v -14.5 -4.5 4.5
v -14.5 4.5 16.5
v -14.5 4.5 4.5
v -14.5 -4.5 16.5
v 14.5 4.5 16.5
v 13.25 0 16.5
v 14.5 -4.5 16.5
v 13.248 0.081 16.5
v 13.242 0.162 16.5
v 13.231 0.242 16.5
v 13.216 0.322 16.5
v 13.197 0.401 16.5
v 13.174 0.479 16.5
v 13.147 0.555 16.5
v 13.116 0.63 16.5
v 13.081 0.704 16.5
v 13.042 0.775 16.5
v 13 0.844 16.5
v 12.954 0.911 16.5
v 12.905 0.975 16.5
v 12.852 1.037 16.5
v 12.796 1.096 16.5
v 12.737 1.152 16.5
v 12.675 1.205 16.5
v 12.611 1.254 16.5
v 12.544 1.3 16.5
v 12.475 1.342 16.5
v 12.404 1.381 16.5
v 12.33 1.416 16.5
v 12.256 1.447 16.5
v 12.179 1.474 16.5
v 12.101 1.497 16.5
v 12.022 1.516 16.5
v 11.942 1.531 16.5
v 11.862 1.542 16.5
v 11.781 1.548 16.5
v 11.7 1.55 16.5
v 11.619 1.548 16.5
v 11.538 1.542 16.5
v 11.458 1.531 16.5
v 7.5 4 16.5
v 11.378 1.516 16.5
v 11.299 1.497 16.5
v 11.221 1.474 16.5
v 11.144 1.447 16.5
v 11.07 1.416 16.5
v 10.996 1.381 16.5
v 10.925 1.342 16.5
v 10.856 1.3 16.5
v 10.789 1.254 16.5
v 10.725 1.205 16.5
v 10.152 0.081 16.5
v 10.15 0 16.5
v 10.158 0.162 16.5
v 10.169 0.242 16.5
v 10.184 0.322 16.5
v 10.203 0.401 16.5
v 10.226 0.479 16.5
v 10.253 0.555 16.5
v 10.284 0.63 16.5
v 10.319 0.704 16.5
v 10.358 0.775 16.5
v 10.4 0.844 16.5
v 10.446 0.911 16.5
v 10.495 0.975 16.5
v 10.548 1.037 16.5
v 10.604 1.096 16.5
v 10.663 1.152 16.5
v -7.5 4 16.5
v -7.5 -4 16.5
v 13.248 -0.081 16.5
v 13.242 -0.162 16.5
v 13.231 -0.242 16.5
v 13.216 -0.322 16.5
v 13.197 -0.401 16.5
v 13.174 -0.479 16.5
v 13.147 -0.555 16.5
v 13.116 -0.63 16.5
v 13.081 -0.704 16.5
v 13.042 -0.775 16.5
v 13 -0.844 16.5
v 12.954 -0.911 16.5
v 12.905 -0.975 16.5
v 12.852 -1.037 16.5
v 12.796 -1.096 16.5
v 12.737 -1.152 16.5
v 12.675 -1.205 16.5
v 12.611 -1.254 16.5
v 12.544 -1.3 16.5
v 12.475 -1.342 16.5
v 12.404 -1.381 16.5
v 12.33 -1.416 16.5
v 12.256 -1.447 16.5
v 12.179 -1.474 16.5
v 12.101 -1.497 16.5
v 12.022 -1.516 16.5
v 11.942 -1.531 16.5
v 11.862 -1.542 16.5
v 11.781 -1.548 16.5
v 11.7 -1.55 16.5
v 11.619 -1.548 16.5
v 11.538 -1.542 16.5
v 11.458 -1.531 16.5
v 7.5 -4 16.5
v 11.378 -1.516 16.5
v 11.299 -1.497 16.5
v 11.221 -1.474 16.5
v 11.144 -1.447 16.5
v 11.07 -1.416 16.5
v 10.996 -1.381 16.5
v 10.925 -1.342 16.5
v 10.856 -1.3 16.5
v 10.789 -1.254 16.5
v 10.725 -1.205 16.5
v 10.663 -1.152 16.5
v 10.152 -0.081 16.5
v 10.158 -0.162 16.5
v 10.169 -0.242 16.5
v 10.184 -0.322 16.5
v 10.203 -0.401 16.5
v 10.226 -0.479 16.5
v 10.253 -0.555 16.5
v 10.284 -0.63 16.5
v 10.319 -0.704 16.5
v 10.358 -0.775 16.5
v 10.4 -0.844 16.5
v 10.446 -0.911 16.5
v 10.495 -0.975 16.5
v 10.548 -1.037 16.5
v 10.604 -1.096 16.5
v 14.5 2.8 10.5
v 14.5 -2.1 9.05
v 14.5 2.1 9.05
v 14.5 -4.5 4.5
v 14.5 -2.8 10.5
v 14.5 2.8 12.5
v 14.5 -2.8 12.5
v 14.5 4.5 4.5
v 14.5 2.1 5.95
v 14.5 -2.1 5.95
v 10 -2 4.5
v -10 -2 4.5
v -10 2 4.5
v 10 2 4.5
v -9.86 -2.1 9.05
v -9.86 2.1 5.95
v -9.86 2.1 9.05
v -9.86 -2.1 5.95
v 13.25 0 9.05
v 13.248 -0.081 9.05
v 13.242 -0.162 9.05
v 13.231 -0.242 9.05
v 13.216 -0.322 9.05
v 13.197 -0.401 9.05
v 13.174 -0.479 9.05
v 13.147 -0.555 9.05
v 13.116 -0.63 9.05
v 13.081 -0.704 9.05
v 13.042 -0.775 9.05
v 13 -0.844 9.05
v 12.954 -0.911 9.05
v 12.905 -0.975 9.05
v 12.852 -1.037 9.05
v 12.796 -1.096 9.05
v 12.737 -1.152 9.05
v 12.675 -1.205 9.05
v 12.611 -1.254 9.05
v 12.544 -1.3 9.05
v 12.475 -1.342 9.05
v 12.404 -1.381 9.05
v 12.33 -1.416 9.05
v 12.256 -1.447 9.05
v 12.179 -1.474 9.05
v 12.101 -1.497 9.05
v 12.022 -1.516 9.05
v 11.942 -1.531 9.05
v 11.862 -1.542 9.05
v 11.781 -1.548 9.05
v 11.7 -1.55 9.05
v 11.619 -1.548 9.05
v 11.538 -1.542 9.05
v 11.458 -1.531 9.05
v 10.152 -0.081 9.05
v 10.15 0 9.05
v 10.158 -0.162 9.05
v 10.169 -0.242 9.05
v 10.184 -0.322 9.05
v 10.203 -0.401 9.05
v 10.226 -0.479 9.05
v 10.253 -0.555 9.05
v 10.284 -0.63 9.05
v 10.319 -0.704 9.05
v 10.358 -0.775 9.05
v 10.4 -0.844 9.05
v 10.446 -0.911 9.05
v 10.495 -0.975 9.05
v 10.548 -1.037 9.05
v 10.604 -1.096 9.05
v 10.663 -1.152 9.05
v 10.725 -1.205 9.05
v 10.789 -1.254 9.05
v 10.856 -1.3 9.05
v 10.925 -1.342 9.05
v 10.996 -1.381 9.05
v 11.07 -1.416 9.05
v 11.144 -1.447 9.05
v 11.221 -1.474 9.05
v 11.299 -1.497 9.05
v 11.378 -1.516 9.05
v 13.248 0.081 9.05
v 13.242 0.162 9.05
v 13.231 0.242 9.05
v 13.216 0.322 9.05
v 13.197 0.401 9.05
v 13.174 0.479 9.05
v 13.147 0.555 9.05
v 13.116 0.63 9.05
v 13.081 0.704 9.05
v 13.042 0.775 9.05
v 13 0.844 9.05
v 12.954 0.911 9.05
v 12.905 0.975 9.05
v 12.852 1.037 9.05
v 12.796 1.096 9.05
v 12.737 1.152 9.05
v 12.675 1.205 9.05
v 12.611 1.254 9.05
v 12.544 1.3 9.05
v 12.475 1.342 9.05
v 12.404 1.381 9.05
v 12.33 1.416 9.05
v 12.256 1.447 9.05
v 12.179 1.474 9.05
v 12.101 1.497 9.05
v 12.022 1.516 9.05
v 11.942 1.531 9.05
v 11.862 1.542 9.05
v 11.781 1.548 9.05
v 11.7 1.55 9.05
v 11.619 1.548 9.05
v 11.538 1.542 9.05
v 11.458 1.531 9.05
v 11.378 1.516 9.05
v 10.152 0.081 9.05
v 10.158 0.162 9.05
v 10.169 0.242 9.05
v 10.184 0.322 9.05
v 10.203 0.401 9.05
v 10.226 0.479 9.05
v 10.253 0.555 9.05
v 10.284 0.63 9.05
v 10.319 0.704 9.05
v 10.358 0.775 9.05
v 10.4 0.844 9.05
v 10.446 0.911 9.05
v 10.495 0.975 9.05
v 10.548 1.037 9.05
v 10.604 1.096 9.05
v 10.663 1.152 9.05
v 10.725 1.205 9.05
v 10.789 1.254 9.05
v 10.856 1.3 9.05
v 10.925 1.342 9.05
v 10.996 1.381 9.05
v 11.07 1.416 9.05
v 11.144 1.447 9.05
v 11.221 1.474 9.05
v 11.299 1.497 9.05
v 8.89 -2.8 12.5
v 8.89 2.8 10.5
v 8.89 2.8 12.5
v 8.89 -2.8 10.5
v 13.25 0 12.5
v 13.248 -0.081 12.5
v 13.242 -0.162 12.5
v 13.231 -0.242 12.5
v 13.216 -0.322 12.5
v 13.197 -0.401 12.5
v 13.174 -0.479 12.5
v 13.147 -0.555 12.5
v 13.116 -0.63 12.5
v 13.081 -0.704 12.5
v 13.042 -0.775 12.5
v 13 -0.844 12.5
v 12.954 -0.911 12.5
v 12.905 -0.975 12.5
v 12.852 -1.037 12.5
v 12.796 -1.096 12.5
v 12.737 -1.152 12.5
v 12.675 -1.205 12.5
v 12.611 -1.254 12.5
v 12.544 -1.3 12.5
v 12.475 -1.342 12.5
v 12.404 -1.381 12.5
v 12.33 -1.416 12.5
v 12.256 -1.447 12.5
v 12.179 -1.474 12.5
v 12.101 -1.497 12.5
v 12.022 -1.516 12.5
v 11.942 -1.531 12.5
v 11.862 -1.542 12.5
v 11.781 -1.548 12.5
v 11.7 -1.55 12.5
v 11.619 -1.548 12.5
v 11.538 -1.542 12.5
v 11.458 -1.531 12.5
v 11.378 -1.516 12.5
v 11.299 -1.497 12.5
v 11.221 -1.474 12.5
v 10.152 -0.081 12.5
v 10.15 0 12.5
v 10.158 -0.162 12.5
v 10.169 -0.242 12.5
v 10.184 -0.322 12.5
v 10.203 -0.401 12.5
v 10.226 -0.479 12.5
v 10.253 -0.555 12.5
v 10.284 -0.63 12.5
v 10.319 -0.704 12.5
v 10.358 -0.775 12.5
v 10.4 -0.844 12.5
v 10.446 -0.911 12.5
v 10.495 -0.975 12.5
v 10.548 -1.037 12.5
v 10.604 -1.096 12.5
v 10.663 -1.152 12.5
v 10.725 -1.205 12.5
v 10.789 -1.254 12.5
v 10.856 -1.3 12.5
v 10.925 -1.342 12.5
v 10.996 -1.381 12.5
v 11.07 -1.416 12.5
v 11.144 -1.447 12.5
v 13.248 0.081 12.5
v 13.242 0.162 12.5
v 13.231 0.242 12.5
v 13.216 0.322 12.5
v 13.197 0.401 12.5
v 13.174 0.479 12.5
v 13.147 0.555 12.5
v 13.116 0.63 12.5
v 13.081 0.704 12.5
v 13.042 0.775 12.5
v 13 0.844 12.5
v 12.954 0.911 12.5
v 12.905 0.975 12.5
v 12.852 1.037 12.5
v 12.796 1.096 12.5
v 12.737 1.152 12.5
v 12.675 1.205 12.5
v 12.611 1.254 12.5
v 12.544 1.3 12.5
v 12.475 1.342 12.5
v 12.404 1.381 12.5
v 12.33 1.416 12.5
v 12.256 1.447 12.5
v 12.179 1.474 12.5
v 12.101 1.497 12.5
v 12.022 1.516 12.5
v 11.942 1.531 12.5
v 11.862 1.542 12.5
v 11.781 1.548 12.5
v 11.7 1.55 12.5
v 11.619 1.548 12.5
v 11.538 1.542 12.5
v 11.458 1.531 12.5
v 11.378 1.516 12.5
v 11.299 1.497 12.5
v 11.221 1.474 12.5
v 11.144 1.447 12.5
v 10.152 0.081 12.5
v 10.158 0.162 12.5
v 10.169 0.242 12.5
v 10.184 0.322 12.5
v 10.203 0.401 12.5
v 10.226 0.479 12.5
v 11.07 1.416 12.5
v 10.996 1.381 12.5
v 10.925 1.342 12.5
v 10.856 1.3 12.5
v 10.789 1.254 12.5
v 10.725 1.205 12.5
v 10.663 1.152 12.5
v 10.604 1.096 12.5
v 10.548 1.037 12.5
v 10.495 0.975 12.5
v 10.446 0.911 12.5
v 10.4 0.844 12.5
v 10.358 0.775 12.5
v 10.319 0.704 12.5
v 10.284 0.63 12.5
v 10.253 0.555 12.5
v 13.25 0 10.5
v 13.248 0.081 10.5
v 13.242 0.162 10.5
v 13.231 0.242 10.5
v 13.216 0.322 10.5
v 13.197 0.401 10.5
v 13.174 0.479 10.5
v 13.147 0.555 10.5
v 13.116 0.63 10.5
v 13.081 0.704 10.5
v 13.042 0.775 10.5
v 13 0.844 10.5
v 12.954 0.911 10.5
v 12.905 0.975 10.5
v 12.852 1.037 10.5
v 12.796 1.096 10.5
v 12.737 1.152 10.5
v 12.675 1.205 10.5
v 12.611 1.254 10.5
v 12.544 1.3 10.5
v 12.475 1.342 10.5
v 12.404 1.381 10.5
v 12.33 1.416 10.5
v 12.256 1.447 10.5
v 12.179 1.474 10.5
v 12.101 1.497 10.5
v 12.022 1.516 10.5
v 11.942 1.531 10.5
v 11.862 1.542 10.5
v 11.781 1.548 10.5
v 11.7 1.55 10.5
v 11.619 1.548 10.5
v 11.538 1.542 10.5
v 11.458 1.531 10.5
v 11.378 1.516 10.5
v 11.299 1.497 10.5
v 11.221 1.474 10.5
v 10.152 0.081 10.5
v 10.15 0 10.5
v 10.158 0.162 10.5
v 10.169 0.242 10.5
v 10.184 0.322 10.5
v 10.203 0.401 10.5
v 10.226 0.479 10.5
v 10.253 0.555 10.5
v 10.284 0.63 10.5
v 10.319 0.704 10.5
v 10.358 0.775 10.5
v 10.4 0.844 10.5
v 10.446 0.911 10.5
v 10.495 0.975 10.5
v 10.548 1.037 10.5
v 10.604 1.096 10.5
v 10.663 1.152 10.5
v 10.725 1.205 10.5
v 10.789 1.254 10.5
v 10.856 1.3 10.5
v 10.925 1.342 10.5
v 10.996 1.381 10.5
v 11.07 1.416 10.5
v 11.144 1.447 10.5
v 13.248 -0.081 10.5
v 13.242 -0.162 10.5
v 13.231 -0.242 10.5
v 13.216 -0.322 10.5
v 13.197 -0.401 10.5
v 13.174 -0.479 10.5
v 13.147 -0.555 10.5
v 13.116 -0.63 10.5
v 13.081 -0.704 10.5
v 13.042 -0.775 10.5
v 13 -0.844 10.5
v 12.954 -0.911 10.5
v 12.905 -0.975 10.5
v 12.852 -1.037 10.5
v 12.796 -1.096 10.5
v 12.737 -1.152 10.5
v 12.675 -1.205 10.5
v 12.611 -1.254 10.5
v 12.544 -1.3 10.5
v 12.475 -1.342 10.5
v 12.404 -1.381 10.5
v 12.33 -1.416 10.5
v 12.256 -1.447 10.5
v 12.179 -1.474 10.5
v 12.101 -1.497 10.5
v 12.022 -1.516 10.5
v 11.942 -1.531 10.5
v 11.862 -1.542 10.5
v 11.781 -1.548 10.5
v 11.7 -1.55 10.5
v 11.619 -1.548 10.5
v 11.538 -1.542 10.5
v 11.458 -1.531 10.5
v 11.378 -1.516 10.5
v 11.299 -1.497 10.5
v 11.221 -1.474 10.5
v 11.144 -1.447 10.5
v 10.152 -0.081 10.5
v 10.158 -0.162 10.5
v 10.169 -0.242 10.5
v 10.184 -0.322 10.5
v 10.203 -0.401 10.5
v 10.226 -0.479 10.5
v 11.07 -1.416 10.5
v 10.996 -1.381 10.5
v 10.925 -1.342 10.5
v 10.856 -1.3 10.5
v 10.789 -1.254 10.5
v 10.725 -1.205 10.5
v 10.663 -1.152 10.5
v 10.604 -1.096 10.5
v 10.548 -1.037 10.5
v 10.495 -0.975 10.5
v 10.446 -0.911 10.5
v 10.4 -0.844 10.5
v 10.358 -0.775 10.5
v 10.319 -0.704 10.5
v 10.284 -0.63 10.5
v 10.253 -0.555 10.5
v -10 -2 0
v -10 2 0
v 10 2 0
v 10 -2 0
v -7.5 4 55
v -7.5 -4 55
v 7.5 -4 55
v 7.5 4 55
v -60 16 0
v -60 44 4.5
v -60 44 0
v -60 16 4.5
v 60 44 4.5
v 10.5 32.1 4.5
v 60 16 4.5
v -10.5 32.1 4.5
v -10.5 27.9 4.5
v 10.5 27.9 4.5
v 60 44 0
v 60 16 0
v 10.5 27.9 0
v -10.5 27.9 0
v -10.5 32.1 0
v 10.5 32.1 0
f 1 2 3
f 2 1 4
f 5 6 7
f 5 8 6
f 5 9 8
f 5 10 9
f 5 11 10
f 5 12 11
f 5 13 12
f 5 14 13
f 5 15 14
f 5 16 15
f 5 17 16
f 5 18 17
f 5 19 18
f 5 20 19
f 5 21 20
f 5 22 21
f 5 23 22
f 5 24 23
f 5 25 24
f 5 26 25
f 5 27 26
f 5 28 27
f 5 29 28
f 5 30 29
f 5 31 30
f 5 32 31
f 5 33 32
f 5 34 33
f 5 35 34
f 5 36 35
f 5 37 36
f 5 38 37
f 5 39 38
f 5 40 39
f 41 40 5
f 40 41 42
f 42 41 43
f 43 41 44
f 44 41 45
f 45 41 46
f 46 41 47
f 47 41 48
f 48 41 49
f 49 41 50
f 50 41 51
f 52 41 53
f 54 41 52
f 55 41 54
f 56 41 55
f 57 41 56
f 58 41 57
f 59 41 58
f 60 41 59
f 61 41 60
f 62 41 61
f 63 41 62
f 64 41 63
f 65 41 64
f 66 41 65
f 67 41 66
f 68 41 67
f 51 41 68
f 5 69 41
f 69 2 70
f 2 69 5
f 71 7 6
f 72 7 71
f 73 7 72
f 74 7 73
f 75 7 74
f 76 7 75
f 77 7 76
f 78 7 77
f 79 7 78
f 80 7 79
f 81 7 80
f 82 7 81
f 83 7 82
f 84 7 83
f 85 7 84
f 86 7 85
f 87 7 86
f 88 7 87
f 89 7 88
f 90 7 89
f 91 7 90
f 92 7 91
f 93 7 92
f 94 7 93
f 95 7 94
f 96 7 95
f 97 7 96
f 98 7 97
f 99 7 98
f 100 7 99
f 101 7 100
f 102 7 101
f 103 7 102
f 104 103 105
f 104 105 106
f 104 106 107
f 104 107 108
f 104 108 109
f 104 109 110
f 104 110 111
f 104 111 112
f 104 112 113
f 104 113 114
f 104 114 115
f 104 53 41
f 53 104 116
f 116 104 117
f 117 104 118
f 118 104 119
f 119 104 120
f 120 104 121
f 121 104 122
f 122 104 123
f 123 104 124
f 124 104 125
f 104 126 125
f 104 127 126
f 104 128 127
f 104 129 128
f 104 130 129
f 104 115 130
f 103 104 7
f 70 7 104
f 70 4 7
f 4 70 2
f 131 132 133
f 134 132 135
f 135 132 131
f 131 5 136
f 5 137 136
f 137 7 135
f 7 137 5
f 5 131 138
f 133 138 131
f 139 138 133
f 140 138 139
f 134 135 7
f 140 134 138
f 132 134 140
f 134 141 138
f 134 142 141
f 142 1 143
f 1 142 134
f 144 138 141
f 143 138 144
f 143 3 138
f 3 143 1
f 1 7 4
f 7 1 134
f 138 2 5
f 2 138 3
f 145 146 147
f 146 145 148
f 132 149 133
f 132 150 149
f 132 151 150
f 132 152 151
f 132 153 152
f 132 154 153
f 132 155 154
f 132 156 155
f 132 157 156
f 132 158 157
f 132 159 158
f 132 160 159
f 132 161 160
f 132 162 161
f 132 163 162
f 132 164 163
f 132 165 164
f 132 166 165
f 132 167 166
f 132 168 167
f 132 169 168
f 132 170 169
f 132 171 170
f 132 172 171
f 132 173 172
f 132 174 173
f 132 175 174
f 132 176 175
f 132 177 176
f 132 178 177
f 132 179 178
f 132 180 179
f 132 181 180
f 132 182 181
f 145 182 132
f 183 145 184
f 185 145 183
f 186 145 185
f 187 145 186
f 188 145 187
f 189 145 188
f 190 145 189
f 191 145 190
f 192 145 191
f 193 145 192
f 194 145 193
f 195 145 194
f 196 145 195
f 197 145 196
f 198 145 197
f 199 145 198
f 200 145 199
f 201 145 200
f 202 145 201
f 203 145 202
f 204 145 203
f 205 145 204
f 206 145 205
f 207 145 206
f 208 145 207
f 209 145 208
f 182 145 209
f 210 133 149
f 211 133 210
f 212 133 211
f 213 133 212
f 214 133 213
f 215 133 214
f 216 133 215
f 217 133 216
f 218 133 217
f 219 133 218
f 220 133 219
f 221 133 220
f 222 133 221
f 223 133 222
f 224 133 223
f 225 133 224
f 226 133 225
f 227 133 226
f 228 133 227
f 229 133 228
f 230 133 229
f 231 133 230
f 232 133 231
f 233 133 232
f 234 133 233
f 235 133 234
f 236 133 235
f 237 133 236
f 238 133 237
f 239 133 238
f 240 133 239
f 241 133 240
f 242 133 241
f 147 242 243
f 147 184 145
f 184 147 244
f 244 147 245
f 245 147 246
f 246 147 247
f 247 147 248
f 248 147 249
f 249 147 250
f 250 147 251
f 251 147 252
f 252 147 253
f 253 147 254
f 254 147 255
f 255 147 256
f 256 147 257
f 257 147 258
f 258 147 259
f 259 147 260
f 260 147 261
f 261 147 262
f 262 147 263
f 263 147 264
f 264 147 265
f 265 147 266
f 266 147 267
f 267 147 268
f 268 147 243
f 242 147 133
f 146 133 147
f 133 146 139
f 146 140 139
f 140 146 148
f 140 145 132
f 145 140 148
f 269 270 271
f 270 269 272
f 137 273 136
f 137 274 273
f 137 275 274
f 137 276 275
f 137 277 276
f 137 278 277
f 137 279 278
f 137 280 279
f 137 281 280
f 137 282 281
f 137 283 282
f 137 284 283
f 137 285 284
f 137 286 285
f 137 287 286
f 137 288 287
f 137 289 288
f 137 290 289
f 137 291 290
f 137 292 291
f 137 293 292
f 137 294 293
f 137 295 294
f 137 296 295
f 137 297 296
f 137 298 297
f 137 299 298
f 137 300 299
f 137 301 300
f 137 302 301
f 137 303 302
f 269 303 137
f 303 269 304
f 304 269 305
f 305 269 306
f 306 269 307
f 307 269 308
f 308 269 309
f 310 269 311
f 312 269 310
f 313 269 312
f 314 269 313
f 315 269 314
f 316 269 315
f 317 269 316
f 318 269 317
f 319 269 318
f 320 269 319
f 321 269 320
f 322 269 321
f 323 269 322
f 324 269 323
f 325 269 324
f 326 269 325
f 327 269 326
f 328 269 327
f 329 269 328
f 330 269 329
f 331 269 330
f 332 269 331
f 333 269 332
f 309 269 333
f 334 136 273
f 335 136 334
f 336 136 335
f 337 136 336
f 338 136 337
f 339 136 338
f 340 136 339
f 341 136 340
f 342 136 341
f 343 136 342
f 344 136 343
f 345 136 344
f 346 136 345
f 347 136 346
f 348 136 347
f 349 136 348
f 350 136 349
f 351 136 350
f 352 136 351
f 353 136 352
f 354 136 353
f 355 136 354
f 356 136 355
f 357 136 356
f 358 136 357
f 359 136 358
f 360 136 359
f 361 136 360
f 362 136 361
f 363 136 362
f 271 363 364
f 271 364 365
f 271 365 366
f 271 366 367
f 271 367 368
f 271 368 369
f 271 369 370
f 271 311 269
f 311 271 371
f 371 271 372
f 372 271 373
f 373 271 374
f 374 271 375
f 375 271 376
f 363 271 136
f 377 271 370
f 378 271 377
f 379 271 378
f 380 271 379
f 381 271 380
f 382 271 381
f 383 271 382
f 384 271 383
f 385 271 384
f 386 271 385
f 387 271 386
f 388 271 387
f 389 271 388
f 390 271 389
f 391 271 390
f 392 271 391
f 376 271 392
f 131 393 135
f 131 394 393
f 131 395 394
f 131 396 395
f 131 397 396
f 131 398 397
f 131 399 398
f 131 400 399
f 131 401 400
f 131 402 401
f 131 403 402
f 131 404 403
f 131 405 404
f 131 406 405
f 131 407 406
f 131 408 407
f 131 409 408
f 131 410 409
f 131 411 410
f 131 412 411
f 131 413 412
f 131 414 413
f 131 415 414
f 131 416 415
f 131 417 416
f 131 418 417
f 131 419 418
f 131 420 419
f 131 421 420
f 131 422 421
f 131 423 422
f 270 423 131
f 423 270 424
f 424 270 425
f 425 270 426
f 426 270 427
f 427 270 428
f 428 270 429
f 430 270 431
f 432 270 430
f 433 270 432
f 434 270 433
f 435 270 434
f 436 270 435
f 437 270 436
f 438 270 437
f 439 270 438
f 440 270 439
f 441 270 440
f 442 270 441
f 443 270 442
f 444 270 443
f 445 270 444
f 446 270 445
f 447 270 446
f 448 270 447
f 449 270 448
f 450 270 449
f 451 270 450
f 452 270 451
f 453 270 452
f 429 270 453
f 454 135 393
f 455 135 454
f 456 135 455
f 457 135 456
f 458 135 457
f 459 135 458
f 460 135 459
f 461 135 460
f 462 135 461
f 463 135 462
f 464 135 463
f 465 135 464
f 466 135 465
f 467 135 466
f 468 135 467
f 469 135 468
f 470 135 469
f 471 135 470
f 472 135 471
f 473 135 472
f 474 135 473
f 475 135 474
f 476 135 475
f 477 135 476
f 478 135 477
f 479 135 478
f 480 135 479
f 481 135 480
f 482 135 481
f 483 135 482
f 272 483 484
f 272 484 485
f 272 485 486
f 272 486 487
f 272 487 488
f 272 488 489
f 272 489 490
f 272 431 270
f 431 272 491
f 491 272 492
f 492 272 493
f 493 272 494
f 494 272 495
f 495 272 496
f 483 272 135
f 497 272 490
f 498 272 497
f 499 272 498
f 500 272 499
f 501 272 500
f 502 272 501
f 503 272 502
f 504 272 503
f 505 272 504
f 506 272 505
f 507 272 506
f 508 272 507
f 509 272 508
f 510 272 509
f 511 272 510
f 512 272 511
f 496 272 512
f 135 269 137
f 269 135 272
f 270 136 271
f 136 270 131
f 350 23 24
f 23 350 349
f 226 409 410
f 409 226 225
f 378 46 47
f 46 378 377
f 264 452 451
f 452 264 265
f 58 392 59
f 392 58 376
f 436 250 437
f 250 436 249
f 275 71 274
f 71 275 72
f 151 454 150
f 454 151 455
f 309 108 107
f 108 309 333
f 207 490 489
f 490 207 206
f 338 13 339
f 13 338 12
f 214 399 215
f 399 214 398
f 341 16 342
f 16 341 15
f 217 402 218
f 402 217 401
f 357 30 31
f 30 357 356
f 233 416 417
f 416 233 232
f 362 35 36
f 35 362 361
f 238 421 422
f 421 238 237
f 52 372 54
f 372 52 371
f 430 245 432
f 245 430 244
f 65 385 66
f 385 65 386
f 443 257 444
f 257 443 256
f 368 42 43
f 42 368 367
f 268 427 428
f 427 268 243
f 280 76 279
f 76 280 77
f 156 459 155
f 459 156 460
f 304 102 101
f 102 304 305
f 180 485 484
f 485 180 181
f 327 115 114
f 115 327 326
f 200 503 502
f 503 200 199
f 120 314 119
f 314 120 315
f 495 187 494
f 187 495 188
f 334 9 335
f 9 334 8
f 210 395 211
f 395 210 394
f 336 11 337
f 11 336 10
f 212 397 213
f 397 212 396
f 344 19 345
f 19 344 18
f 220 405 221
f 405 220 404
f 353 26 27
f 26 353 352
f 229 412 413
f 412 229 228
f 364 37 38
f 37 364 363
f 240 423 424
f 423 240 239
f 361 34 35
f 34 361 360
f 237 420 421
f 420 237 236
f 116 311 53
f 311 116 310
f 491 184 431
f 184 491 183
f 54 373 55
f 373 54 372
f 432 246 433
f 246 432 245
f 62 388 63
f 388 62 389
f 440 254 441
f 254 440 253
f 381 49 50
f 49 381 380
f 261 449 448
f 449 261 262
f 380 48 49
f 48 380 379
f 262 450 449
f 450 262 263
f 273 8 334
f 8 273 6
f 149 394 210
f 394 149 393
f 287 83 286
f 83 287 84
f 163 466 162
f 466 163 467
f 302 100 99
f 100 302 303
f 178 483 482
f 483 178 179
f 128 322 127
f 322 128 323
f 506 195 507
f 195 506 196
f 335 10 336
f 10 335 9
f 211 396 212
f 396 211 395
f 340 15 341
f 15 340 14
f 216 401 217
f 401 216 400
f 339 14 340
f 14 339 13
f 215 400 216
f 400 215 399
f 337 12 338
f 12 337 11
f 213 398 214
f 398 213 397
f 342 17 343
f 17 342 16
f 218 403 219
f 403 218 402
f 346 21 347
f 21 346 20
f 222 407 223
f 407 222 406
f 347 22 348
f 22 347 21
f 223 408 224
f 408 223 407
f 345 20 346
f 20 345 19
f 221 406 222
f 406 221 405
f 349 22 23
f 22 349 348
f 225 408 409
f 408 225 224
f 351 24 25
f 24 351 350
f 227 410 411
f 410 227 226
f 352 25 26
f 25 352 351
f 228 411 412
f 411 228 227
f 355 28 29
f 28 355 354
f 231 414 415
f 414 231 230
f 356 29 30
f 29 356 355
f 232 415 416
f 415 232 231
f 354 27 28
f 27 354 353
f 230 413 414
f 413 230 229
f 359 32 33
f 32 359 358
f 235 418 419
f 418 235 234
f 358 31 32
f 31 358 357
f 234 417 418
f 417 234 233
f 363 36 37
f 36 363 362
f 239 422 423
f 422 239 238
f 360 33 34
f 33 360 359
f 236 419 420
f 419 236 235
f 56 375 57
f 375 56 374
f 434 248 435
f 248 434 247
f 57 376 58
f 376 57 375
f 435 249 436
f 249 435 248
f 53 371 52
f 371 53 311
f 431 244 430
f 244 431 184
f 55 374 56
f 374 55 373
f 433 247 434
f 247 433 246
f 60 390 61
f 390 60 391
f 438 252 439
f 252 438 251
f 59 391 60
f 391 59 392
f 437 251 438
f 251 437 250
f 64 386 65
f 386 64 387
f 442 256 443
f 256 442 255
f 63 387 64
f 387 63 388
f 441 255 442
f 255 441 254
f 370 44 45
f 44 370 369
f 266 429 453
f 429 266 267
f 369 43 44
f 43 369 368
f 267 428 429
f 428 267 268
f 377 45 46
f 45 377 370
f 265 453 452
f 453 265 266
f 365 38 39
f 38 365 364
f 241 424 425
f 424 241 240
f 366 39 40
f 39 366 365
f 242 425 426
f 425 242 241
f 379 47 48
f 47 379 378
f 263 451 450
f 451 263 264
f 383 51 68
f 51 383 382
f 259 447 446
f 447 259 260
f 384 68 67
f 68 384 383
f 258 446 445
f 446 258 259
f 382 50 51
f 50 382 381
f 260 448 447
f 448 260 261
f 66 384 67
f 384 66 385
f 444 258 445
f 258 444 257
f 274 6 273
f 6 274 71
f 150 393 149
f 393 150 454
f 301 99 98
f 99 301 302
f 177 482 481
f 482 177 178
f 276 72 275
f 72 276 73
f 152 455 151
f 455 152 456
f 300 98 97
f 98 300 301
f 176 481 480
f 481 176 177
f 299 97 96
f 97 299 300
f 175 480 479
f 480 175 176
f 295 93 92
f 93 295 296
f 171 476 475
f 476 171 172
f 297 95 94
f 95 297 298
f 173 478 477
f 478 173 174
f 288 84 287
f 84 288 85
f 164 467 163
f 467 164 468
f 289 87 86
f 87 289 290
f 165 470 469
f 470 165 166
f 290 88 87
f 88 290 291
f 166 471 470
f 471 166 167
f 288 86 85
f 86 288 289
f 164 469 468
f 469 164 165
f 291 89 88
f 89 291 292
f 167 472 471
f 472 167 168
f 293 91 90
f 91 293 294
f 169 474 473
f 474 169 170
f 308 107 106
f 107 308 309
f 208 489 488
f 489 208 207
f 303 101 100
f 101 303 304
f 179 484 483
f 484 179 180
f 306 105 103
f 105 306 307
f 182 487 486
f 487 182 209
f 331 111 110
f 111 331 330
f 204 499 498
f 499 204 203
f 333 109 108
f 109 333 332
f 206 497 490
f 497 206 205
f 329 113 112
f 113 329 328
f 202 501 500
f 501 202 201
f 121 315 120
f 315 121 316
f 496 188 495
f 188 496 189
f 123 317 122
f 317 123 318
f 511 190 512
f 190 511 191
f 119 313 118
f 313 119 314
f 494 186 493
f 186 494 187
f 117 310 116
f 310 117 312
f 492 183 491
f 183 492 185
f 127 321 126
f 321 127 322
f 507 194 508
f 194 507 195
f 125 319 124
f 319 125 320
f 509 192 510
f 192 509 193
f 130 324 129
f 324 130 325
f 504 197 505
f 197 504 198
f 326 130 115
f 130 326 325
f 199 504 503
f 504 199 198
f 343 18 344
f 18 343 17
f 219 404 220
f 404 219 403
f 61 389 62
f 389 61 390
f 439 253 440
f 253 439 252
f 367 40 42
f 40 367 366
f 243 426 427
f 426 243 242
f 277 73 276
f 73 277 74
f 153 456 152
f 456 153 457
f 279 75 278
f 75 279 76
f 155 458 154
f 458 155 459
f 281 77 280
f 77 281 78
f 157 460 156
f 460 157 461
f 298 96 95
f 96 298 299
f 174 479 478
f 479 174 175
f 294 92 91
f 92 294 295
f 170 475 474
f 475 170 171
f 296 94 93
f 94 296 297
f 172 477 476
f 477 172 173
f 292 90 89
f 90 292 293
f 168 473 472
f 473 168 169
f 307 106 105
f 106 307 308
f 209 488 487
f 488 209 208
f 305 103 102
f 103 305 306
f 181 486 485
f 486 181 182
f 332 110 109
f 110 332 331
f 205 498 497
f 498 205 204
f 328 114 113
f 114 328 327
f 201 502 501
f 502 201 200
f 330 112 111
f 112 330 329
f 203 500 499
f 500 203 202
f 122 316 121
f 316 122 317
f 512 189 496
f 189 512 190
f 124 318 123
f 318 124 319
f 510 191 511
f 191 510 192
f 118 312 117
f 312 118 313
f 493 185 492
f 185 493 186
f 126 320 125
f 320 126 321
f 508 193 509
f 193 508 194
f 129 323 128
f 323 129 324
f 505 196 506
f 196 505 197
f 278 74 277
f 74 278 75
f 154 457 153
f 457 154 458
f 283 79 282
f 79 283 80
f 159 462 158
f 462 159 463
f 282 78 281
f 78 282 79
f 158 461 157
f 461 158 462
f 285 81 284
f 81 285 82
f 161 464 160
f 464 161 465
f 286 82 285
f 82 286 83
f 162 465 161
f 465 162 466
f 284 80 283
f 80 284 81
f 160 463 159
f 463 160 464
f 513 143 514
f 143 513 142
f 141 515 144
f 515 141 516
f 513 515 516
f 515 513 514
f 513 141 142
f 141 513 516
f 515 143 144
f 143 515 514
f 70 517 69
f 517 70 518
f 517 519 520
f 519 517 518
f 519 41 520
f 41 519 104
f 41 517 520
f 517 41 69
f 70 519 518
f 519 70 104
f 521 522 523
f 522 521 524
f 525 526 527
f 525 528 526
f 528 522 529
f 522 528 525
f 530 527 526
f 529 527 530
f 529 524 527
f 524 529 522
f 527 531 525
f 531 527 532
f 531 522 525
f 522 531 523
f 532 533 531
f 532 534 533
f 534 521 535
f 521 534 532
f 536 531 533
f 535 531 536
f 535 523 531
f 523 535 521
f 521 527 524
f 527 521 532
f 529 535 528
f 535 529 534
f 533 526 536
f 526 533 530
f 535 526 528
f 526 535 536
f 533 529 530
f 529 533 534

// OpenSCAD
$fa=3;
$fs=0.05;
p = 0.02;
p2 = 2*p;

//magnet
a = 20.0;
b = 4.0;
c = 3.0;

//nut
m = 2.0;
s = 5.6;

cc = 1.5*c;
aa = a + 2*m + 5;
bb = b+5;

union() {    
    translate([0, 0, cc/2])
    cube([a, b, cc], center=true);    
    
    difference() {
        translate([0, 0, 4*c/2 + cc])
        cube([aa, bb, 4*c], center=true);
        translate([(aa-a)/2, 0, c/2 + cc + c/2])
        cube([a+(aa-a)/2+p+0.2+4, b+0.2, c+0.1], center=true);
        translate([aa/2 - s/2, 0, m/2 + 3.5*c])
        cube([s+p, s, m], center=true);
        translate([aa/2 - s/2, 0, 4*c/2 + cc + c])
        cylinder(d=3.1, h=4*c+p, center=true);
    }    
    
    tool_height = 40;
    tool_width = 15;
    translate([0, 0, tool_height/2 + 5 * c])
    cube([tool_width, 2*b, tool_height], center=true);
}

translate([0, 30, 0])
difference() {
    translate([0, 0, cc/2])
    cube([6*a, 7*b, cc], center=true);
    translate([0, 0, cc/2])
    cube([a, b, cc+p]*1.05, center=true);
}
